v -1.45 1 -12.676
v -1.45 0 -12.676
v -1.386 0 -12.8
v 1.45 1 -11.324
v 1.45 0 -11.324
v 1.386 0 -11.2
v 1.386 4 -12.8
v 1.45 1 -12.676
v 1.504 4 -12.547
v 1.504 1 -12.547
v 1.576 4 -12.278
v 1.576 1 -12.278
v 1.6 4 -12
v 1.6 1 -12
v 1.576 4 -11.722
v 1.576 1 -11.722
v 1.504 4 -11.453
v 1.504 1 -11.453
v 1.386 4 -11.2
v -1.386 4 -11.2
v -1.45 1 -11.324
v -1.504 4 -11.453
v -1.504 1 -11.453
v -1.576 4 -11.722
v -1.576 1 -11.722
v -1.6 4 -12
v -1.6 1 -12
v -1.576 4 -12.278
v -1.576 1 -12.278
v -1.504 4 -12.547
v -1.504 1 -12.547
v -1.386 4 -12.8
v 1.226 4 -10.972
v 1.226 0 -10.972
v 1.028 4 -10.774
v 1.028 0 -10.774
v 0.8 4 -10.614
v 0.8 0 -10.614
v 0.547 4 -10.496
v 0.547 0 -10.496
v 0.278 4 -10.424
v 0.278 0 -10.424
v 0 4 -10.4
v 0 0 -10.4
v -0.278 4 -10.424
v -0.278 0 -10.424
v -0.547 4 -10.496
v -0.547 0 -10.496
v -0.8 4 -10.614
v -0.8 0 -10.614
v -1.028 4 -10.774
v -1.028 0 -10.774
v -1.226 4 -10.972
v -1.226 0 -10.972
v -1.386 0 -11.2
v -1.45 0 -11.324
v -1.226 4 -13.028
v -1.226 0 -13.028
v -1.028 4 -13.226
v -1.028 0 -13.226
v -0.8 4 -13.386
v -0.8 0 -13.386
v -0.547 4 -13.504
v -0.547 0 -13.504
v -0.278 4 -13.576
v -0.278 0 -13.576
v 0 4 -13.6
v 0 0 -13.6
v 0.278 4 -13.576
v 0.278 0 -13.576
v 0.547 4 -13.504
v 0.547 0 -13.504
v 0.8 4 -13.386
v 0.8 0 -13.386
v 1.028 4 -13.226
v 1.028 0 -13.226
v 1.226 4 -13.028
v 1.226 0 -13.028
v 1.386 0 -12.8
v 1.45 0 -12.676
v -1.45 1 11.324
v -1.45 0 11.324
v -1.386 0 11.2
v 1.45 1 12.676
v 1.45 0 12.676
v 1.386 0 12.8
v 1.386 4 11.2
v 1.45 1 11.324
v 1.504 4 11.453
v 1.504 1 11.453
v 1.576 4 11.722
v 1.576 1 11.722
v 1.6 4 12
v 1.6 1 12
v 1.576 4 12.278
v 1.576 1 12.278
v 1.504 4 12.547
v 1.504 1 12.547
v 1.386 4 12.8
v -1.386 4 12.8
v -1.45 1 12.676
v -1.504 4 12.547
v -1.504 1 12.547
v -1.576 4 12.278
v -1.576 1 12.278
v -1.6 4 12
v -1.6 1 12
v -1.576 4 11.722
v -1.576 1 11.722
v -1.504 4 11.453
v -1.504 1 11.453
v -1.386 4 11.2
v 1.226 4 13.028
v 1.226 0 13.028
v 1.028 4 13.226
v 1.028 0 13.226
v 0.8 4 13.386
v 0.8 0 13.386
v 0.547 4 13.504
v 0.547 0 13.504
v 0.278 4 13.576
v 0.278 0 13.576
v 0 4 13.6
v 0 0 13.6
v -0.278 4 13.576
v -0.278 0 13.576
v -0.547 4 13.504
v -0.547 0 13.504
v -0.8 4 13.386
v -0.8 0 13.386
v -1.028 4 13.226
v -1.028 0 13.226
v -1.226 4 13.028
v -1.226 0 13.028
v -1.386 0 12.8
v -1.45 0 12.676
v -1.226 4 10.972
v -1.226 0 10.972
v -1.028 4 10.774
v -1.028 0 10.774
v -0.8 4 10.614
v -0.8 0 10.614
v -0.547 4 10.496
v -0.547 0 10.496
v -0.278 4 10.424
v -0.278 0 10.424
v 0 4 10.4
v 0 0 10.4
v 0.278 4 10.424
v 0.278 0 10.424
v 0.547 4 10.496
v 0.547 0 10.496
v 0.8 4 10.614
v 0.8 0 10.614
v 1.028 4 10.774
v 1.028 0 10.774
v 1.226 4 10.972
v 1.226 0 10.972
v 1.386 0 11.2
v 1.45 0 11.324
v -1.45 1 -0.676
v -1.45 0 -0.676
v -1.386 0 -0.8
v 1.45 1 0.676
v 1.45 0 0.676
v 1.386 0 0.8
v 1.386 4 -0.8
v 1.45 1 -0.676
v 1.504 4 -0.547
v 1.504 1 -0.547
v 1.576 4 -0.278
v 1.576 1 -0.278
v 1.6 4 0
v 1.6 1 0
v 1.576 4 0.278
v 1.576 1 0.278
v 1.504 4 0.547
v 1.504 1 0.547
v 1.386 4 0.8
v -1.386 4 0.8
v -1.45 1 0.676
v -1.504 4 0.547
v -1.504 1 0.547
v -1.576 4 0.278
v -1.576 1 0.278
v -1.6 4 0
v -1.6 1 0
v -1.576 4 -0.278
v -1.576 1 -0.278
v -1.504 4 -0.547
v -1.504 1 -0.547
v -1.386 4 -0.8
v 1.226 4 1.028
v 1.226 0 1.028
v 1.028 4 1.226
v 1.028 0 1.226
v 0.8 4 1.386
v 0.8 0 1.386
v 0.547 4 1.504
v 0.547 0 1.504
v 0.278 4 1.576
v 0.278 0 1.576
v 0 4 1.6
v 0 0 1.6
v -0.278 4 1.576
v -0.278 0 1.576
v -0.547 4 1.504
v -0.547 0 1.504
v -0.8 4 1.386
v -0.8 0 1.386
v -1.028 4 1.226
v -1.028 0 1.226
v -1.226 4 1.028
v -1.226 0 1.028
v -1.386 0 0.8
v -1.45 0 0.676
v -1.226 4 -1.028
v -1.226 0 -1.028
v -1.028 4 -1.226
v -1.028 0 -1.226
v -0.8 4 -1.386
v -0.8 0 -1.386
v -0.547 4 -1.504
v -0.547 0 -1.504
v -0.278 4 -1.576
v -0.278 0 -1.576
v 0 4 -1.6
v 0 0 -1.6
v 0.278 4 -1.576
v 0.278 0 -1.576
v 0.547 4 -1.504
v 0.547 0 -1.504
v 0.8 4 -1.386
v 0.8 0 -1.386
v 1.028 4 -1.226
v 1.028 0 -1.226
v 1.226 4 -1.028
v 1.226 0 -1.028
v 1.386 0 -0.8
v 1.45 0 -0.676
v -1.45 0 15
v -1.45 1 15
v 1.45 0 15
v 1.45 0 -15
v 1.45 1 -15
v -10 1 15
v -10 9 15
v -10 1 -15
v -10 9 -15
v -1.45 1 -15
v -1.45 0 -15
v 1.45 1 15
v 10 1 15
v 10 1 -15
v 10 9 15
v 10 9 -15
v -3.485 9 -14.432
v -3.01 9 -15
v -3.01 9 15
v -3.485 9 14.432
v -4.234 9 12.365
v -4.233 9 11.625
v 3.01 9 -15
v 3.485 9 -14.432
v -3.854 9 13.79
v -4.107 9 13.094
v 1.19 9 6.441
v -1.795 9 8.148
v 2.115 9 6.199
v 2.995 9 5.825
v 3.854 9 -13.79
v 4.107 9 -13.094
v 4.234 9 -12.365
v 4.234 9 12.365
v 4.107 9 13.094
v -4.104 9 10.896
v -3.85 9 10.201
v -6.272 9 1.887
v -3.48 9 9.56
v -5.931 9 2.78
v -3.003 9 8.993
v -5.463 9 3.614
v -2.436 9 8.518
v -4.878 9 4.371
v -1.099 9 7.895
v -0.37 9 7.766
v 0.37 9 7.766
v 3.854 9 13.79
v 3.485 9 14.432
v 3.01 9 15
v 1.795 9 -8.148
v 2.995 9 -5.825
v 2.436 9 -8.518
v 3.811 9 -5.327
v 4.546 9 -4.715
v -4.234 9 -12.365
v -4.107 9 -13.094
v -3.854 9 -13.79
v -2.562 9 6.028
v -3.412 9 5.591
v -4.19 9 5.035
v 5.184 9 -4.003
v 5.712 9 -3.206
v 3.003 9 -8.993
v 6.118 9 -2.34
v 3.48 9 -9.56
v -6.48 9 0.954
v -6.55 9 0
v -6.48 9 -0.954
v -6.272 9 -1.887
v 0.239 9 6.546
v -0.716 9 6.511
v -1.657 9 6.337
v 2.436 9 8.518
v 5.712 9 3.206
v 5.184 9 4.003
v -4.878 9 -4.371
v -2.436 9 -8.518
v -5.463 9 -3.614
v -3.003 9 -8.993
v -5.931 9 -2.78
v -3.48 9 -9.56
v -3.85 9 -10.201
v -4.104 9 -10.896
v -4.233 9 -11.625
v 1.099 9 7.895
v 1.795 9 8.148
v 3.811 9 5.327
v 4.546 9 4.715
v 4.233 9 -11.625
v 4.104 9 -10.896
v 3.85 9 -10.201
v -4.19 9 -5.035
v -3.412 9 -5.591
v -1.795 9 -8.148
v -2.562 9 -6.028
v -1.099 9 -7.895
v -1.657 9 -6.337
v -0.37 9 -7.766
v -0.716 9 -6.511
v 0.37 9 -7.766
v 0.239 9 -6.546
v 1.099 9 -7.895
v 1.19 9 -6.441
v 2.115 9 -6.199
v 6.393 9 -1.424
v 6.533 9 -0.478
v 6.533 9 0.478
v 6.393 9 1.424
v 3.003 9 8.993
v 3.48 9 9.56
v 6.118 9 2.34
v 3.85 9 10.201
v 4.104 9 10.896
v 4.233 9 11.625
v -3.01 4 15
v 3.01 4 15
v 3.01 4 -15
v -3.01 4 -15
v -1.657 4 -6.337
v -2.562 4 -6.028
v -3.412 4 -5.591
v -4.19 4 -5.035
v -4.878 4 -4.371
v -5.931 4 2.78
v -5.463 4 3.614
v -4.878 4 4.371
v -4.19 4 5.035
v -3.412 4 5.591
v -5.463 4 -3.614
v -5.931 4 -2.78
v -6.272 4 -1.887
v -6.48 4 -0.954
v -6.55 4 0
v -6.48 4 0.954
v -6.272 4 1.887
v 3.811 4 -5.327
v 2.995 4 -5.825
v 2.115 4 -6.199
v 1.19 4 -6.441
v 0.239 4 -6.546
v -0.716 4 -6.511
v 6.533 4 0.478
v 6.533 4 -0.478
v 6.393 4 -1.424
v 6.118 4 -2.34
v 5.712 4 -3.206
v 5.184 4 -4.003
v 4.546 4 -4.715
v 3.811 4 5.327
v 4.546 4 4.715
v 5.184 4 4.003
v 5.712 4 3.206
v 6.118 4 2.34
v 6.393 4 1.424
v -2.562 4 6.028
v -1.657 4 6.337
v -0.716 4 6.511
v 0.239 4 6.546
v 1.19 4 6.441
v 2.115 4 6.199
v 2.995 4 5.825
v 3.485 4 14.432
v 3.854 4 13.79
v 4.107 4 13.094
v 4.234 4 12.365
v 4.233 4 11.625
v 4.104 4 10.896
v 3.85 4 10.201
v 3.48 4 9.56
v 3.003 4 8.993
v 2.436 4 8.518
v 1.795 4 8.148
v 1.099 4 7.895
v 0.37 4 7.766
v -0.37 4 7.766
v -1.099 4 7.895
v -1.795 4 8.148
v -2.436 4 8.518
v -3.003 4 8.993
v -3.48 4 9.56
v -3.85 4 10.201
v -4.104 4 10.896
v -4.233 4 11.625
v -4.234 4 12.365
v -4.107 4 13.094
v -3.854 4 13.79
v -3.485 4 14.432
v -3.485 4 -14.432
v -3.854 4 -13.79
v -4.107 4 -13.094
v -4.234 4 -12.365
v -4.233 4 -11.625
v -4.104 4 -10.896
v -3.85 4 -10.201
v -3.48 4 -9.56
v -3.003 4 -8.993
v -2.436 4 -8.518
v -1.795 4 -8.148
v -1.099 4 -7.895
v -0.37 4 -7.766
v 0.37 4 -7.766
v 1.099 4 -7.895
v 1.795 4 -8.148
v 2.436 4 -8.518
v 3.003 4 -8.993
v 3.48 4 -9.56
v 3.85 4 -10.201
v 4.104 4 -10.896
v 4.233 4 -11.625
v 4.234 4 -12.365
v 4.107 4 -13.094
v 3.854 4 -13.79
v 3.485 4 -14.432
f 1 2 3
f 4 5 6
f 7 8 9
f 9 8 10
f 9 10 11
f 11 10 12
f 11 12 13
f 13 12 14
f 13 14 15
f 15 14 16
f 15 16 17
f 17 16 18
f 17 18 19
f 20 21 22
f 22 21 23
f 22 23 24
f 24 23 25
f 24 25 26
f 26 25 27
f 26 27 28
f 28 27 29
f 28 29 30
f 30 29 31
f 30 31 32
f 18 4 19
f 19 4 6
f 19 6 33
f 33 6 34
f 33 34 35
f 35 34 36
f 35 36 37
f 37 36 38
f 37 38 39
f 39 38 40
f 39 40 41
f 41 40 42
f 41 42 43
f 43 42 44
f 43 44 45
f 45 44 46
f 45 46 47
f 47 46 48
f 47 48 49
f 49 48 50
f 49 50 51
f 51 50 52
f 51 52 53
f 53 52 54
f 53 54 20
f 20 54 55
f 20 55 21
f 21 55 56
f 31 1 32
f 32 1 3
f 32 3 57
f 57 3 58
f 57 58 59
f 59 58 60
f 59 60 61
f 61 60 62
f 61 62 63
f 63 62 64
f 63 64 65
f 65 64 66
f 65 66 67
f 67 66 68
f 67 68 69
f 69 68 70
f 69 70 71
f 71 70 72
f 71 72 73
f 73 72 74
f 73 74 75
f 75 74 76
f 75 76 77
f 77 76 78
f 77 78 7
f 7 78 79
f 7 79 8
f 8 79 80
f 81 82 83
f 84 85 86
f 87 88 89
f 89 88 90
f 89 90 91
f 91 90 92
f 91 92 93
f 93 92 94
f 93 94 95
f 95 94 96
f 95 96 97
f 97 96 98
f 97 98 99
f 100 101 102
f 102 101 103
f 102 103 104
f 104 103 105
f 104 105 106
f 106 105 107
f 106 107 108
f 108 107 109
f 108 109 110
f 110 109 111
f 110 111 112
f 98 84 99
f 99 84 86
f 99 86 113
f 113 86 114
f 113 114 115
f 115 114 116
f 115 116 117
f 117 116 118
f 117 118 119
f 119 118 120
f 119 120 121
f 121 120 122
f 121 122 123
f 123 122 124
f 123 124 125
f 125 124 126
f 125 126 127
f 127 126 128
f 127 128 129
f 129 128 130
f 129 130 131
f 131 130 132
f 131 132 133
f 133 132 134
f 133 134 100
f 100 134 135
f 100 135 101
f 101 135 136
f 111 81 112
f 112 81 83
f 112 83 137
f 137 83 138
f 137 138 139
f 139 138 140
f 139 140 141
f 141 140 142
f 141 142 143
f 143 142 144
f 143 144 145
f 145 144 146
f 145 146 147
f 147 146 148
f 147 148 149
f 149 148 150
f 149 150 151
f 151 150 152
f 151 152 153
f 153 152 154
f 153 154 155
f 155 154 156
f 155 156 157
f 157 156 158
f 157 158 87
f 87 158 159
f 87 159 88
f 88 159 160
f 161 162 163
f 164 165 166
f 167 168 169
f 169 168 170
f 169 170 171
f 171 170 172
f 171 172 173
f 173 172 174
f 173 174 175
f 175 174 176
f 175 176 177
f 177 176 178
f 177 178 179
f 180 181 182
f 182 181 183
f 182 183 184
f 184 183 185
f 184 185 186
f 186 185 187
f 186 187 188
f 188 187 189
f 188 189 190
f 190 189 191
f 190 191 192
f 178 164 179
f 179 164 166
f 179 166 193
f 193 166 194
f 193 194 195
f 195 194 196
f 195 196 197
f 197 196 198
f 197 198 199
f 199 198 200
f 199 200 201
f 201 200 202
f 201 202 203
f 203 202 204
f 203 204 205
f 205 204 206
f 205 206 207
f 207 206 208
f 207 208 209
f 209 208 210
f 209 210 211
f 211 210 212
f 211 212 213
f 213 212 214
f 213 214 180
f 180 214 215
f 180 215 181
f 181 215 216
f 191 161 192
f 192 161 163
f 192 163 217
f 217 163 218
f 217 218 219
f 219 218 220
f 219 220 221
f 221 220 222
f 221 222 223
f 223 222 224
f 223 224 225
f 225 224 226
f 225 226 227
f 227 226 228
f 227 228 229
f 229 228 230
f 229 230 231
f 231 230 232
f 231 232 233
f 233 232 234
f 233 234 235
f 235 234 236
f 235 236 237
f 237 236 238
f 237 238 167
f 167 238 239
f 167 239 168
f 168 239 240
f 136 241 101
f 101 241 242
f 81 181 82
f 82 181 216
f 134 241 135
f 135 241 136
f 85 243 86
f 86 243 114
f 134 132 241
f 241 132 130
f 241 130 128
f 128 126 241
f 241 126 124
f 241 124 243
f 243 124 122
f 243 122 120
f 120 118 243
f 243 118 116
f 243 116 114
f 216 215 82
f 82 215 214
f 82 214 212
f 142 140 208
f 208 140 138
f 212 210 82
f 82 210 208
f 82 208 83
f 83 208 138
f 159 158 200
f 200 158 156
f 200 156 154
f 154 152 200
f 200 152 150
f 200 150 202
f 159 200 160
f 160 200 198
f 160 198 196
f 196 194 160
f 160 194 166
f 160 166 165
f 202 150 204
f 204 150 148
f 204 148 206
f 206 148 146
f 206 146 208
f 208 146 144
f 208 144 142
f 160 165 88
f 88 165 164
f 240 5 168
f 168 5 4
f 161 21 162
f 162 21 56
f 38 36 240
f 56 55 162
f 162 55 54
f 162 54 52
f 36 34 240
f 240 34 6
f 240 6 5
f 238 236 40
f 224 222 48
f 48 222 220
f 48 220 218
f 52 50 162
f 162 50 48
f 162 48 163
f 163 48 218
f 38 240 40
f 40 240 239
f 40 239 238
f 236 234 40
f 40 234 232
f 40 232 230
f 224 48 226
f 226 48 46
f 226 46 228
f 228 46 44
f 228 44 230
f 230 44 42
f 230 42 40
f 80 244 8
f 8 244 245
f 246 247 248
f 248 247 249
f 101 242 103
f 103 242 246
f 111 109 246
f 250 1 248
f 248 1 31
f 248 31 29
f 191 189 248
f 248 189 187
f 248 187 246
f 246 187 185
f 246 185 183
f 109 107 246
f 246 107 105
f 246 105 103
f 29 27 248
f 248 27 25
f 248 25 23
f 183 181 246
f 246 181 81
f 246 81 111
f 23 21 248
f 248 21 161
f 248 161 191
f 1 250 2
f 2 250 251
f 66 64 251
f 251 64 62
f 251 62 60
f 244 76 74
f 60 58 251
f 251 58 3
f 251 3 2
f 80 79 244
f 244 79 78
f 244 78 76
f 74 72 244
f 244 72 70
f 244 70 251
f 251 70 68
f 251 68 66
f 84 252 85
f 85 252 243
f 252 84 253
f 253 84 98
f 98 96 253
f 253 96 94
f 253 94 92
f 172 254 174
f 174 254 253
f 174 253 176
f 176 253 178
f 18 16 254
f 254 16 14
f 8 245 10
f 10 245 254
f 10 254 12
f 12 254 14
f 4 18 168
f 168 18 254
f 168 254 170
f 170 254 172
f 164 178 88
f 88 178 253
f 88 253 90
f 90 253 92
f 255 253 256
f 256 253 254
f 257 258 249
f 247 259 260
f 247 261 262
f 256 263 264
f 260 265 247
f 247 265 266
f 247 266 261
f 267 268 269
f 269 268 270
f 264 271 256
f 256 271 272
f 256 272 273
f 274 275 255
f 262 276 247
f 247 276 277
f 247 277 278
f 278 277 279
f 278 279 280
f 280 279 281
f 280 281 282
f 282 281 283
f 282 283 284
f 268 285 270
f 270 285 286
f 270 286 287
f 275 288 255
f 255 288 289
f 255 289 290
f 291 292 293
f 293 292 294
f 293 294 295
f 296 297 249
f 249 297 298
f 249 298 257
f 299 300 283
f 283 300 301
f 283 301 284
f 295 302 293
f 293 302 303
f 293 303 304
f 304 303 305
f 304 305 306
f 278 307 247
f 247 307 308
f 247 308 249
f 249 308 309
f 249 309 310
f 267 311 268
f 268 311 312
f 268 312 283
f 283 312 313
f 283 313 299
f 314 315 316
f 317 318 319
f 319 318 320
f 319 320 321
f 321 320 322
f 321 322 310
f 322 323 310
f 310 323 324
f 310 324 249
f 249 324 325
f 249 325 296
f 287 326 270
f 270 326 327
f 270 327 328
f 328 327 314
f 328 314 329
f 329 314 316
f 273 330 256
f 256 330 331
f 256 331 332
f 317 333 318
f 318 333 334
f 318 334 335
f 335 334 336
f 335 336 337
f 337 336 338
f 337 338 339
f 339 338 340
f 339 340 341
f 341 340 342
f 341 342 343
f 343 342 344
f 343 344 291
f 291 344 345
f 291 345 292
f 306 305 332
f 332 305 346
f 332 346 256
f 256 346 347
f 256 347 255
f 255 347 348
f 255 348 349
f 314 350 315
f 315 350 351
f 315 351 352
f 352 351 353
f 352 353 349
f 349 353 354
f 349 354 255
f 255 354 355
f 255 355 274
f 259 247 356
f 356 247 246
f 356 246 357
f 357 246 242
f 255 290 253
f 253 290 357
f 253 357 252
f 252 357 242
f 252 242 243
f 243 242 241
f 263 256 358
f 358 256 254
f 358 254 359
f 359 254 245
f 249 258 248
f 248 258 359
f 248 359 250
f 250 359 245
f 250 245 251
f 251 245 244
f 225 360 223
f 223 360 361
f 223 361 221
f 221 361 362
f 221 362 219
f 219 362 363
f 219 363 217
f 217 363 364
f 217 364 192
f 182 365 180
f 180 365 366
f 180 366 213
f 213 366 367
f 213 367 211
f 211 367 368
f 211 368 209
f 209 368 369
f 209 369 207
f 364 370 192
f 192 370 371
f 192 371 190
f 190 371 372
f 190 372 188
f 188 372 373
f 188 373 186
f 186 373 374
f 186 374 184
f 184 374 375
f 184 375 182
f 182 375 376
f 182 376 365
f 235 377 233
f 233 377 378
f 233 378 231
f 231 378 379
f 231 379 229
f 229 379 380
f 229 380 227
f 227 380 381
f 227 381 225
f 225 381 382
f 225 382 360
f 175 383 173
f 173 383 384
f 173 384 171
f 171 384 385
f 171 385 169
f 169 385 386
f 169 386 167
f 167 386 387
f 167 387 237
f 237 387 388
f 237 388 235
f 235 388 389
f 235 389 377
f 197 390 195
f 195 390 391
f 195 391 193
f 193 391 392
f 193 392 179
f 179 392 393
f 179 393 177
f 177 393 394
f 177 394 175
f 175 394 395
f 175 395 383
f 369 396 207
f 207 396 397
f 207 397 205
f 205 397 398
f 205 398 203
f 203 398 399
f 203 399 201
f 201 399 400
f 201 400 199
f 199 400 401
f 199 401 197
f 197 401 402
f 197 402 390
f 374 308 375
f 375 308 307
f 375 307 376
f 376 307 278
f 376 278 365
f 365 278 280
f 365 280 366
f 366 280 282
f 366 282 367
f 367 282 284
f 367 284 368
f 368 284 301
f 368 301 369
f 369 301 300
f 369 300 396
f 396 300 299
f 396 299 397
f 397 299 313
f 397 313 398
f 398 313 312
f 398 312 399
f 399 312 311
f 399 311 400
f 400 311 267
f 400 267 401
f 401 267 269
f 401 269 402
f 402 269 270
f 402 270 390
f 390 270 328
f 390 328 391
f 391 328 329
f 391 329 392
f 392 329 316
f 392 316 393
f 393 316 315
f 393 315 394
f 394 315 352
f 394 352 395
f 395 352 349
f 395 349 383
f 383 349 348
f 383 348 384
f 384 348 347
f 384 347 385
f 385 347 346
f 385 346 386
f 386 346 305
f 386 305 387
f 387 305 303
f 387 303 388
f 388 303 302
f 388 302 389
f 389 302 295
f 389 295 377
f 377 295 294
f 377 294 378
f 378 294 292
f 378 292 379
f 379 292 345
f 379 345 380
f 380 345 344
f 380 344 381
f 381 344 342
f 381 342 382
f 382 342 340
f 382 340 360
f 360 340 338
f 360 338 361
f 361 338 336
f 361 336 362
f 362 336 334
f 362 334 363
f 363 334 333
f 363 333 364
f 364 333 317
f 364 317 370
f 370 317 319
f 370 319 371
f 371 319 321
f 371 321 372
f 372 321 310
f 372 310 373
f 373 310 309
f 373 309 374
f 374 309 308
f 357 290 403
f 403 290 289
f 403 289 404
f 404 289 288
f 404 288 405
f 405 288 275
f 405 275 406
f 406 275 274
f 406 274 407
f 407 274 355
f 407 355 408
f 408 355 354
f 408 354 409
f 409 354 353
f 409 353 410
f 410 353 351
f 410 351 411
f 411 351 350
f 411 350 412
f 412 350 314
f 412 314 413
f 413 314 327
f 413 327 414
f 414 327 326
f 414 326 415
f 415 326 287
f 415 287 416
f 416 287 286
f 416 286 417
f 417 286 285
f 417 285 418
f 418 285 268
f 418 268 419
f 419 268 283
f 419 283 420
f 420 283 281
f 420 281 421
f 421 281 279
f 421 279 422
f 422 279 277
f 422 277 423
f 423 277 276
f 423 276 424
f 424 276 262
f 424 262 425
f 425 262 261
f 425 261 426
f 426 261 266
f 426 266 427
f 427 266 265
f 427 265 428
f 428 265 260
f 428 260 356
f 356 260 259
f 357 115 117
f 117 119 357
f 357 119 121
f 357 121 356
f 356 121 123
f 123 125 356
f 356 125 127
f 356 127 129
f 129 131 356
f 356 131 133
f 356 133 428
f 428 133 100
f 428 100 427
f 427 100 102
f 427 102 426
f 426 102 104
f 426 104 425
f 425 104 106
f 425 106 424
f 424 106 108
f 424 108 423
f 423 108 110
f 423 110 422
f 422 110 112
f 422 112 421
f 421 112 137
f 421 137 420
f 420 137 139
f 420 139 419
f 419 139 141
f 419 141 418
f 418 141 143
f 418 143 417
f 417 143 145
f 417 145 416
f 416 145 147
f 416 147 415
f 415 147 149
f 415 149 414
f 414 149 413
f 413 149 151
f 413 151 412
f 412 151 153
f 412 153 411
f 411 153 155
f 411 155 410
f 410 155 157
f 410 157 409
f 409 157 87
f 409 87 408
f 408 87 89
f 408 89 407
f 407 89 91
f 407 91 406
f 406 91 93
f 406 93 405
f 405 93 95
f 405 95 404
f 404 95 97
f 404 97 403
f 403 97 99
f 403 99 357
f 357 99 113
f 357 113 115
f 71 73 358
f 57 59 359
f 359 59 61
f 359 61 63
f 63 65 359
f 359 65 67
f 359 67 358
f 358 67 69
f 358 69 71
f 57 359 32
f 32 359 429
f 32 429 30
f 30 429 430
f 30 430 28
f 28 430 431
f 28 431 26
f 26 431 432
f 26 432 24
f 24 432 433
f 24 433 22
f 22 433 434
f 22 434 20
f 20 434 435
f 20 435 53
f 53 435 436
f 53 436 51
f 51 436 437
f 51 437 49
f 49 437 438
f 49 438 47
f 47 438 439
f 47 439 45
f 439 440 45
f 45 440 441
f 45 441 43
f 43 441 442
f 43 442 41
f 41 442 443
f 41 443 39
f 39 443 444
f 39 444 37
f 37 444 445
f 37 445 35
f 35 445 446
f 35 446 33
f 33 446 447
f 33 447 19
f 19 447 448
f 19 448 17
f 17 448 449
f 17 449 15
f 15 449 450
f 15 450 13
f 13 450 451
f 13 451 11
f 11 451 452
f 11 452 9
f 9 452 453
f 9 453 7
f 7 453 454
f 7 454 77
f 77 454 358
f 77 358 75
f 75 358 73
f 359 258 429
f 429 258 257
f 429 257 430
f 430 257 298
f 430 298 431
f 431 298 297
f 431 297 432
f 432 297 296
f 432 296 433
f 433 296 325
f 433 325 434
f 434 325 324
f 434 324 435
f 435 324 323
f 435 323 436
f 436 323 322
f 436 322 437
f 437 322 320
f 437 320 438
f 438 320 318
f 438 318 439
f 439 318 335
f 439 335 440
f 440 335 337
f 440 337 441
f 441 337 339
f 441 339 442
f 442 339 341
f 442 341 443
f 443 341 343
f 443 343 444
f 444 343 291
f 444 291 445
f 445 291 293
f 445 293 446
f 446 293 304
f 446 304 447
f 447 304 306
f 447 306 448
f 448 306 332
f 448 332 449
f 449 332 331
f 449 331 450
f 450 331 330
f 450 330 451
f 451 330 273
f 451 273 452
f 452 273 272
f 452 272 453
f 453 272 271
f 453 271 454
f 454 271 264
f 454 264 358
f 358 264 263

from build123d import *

# Parameters (mm, degrees)
MAIN_DEPTH        = 15
SKETCH5_R         = 1.6
FIXHOLE_DEPTH     = 10
SKETCH3_R         = 6.55
SKETCH3_R_2       = 4.25
BEARINGHOLE_DEPTH = 5


with BuildPart() as part:
    # Sketch1 → Main (new body, symmetric)
    with BuildSketch(Plane.XY):
        Polygon((-10, 9), (10, 9), (10, 1), (1.45, 1), (1.45, 0), (-1.45, 0), (-1.45, 1), (-10, 1), align=None)
    extrude(amount=MAIN_DEPTH, both=True)

    # Sketch5 → FixHole (cut, through all)
    with BuildSketch(Plane(origin=(0, 0, 0), x_dir=(-1, 0, 0), z_dir=(0, -1, 0))):
        with Locations((0, 12)):
            Circle(SKETCH5_R)
        with Locations((0, -12)):
            Circle(SKETCH5_R)
        Circle(SKETCH5_R)
    extrude(amount=-FIXHOLE_DEPTH, mode=Mode.SUBTRACT)

    # Sketch3 → BearingHole (cut)
    with BuildSketch(Plane(origin=(0, 9, 0), x_dir=(1, 0, 0), z_dir=(0, 1, 0))):
        Circle(SKETCH3_R)
        with Locations((0, 12)):
            Circle(SKETCH3_R_2)
        with Locations((0, -12)):
            Circle(SKETCH3_R_2)
    extrude(amount=-BEARINGHOLE_DEPTH, mode=Mode.SUBTRACT)


solid = part.part
